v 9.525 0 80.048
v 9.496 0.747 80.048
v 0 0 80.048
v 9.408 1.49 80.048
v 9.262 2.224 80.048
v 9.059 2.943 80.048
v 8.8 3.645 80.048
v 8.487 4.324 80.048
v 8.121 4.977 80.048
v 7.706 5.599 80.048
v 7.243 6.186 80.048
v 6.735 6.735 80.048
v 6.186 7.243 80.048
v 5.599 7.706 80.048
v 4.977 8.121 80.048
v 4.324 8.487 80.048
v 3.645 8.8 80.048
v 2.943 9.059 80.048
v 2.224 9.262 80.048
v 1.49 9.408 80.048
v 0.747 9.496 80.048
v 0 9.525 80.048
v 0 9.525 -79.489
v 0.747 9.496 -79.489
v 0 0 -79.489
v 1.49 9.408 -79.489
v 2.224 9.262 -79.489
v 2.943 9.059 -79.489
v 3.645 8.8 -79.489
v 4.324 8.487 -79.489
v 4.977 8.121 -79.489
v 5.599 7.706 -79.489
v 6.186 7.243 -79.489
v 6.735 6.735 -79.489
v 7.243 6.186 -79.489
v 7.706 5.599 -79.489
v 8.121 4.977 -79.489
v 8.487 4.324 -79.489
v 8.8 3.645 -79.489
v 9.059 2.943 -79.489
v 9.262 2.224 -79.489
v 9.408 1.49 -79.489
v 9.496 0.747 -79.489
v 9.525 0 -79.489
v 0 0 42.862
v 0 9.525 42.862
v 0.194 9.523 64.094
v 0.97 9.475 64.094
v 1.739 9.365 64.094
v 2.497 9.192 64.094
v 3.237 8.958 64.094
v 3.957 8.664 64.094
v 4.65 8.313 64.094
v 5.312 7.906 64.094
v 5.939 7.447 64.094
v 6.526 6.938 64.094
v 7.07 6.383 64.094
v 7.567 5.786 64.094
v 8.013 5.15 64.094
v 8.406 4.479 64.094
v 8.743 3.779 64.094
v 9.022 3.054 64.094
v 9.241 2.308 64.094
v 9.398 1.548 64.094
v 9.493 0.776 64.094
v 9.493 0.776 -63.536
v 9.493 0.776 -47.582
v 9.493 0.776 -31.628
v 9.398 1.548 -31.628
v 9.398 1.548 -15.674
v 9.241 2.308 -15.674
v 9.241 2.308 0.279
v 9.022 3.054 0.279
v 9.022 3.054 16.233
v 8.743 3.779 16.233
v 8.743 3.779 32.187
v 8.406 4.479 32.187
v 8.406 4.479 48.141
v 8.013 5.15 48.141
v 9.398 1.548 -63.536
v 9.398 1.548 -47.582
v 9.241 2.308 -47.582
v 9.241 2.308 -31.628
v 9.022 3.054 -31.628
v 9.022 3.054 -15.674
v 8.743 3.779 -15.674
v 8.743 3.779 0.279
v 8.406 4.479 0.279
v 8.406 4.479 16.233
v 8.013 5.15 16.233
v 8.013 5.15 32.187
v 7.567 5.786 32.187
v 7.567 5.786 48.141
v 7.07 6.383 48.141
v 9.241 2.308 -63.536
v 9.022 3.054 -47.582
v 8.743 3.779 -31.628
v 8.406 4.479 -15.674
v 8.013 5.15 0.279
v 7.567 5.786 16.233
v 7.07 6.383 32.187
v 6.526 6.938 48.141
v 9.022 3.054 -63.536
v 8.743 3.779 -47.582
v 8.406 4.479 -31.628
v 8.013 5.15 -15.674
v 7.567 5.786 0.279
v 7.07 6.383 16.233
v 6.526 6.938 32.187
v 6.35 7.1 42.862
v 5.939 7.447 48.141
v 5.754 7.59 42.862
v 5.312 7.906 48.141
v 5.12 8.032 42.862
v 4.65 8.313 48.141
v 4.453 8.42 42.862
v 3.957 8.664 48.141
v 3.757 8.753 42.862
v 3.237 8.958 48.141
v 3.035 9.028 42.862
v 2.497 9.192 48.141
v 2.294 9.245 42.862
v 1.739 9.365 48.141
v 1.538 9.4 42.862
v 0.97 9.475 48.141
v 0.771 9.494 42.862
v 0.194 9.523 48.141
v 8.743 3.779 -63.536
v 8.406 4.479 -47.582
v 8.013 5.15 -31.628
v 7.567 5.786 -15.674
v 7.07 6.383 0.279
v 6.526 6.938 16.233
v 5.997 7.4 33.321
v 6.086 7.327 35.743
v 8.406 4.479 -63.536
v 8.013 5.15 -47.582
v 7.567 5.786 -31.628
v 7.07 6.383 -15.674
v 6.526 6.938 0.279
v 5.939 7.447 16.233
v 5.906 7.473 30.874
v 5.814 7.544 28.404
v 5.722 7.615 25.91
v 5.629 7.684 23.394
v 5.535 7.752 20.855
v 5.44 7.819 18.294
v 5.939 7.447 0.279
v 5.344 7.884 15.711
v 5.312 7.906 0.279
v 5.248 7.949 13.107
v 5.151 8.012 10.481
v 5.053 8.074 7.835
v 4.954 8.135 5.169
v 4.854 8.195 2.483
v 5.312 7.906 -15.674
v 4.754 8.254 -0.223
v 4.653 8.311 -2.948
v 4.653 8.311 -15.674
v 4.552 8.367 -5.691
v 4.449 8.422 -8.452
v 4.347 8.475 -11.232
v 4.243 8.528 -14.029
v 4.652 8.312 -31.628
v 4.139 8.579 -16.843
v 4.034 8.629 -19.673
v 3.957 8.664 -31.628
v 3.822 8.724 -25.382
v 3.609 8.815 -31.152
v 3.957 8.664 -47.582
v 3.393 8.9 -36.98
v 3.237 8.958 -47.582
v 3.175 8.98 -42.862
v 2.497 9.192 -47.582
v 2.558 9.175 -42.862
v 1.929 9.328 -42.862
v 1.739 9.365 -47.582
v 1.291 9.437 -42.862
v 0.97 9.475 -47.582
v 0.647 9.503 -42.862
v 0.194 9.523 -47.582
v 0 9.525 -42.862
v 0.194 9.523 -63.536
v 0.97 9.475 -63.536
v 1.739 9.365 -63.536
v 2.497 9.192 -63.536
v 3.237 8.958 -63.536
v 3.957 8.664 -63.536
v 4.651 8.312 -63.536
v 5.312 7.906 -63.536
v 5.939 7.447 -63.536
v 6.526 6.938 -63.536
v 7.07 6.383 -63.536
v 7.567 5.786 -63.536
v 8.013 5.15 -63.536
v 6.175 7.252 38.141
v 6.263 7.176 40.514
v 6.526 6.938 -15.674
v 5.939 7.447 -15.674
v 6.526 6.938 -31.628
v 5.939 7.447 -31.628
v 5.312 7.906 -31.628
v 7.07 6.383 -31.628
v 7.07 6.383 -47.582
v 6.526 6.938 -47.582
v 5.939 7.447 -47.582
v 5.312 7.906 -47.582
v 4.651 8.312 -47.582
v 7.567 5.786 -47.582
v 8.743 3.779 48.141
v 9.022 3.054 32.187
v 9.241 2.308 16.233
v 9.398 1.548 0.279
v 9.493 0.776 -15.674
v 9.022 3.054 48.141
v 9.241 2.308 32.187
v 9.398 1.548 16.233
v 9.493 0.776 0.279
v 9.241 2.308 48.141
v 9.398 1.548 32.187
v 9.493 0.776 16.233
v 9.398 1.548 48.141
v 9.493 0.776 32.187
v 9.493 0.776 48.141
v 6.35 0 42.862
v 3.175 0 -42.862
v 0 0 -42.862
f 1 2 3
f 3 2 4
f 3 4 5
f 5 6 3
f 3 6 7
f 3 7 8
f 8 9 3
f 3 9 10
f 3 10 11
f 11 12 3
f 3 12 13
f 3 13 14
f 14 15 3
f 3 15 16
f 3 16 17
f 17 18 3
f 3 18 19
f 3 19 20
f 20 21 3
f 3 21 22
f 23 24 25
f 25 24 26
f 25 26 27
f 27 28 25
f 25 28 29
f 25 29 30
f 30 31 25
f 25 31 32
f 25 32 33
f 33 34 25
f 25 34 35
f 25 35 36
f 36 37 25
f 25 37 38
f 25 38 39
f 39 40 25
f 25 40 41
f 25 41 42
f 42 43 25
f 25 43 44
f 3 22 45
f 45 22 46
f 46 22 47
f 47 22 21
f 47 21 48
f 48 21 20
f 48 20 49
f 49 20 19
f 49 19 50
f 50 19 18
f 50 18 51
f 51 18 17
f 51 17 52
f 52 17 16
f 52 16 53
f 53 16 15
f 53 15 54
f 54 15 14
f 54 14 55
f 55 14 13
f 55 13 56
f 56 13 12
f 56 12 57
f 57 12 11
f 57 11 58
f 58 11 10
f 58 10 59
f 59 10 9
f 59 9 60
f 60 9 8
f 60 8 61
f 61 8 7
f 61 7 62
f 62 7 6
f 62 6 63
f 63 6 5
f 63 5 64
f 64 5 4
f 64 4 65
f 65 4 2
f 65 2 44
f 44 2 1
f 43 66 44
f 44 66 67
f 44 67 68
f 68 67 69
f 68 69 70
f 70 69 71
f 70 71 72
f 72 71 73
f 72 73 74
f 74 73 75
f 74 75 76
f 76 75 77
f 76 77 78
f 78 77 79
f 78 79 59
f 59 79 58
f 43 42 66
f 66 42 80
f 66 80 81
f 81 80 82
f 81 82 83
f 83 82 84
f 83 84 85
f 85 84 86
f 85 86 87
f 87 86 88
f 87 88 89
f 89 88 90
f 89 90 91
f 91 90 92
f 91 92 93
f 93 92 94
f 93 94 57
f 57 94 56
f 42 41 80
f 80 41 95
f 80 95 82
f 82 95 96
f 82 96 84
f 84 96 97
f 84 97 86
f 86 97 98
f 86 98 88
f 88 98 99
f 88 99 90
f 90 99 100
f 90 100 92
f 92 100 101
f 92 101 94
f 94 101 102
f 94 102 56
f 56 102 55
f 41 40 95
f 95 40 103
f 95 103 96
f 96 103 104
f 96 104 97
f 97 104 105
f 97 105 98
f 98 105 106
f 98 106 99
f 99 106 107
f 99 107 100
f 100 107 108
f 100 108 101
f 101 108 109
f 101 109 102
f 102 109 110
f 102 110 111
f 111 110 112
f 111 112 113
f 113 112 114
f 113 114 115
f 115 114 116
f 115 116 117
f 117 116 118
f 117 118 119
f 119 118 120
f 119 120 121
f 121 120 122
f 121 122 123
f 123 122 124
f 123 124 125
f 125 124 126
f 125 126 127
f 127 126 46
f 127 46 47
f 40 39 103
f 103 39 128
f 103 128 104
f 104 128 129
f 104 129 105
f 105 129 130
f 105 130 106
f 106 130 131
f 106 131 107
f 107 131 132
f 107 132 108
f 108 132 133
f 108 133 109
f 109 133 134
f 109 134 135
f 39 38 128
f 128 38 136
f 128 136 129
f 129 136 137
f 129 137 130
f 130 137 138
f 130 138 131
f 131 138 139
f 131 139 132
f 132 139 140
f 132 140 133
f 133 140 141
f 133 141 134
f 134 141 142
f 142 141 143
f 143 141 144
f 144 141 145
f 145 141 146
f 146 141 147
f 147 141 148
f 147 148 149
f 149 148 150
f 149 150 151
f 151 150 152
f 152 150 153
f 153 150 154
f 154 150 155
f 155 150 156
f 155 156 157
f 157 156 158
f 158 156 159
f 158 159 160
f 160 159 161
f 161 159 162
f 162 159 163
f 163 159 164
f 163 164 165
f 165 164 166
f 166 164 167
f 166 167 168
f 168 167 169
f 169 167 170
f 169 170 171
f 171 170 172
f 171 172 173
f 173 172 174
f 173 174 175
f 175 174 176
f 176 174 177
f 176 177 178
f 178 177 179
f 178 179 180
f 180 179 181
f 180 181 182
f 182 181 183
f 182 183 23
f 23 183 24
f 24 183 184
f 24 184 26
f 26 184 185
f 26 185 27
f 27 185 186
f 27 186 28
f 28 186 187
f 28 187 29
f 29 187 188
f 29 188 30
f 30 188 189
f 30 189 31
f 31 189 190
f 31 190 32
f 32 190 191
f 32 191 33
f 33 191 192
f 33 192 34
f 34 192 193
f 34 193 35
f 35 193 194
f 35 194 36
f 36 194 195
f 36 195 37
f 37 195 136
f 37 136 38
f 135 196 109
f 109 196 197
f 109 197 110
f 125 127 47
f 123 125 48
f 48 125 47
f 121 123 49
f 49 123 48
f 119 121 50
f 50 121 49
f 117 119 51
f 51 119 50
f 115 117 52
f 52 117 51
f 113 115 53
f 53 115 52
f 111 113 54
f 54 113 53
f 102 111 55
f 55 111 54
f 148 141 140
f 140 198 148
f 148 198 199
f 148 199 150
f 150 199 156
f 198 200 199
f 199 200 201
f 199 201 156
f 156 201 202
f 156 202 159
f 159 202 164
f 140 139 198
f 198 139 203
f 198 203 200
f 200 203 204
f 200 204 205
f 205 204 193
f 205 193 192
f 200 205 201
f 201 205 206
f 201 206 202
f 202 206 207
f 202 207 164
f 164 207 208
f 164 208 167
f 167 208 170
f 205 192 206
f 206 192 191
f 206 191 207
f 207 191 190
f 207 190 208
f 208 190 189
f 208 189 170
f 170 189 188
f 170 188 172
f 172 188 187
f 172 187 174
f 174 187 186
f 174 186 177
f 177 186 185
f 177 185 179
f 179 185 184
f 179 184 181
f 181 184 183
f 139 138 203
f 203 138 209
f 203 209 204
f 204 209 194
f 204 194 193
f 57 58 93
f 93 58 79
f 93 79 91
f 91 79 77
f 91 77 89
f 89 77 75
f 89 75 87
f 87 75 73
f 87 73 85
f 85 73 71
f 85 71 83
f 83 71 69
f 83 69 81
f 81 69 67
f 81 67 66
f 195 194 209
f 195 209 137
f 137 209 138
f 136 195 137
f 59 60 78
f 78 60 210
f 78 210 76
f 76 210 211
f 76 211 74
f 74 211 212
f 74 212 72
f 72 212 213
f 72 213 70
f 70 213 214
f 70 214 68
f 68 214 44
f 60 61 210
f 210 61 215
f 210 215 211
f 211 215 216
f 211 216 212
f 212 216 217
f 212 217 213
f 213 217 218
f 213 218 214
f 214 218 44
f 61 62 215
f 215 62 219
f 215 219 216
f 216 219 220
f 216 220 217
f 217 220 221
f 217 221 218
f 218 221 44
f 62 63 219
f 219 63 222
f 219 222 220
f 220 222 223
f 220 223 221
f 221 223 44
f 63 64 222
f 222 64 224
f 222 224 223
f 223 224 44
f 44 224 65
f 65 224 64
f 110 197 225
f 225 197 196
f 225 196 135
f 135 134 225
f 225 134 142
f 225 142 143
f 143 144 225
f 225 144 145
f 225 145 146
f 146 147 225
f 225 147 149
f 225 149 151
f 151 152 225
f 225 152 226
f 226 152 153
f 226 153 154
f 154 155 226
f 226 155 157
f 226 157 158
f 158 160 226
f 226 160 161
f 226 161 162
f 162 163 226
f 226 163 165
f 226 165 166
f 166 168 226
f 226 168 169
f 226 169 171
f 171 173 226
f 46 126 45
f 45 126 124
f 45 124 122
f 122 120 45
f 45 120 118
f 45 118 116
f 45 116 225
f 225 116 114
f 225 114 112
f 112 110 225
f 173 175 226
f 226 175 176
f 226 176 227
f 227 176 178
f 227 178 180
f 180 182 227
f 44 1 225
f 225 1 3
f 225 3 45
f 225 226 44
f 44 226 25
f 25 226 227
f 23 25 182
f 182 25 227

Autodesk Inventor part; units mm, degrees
ref_plane "YZ Plane" through (0, 0, 0) normal (1, 0, 0) x (0, 1, 0)
ref_plane "XZ Plane" through (0, 0, 0) normal (0, 1, 0) x (-1, 0, 0)
ref_plane "XY Plane" through (0, 0, 0) normal (0, 0, 1) x (1, 0, 0)
sketch "Sketch1" plane through (0, 0, 0) normal (0, 0, 1) x (1, 0, 0)
  arc A0 (9.525, 0) -> (0, 9.525) centre (0, 0) ccw
  line L0 (0, 9.525) -> (0, 0)
  line L1 (0, 0) -> (9.525, 0)
  dimension "d0" = 19.05
extrude "Extrusion1" add sketch "Sketch1" along normal mid plane 161.925
sketch "Sketch2" plane through (0, 0, 80.9625) normal (0, -1, 0) x (1, 0, 0)
  line L0 (0, -38.1) -> (6.35, -38.1)
  line L1 (3.175, -123.825) -> (0, -123.825)
  line L2 (0, -123.825) -> (0, -38.1)
  line L3 (9.525, -161.925) -> (0, -161.925) projected
  line L4 (0, -161.925) -> (0, 0) projected
  line L5 (3.175, -123.825) -> (6.35, -38.1)
  point P0 (0, -80.9625)
  dimension "d4" = 38.1
  dimension "d8" = 3.175
  dimension "d9" = 6.35
extrude "Extrusion2" cut sketch "Sketch2" against normal through all
sketch "Sketch3" plane through (0, 0, -80.9625) normal (0, -1, 0) x (1, 0, 0)
  line L0 (9.525, 0) -> (0, 0) projected
  line L1 (0, 0) -> (0, 38.1) projected
  line L2 (9.525, 0) -> (0, 0)
  line L3 (0, 0) -> (0, 1.4732)
  line L4 (0, 1.4732) -> (9.525, 1.4732)
  line L5 (9.525, 1.4732) -> (9.525, 0)
  line L6 (0, 161.925) -> (9.525, 161.925) projected
  line L7 (9.525, 161.925) -> (9.525, 0) projected
  line L8 (0, 161.925) -> (9.525, 161.925)
  line L9 (9.525, 161.925) -> (9.525, 161.0106)
  line L10 (9.525, 161.0106) -> (0, 161.0106)
  line L11 (0, 161.0106) -> (0, 161.925)
  point P0 (0, 80.9625)
  dimension "d10" = 1.4732
  dimension "d11" = 0.9144
extrude "Extrusion3" cut sketch "Sketch3" against normal through all
equation "\"d0\" = cornerRoundType"
equation "\"d1\" = lengthOfPart"
equation "\"d4\" = bottomLength"
equation "\"d8\" = notchDepthLeftSide"
equation "\"d9\" = notchDepthRightSide"
equation "\"d10\" = leftSideLengthRemove"
equation "\"d11\" = rightSideLengthRemove"
equation "\"cornerRoundType\" = 19.05"
equation "\"notchCutout\" = 85.725"
equation "\"bottomLength\" = 38.1"
equation "\"lengthOfPart\" = 2 * bottomLength + notchCutout"
equation "\"notchDepth\" = 6.35"
equation "\"notchDepthLeftSide\" = 3.175"
equation "\"notchDepthRightSide\" = 6.35"
equation "\"leftSideLengthRemove\" = 1.4732"
equation "\"rightSideLengthRemove\" = 0.9144"
properties part number "customMoulding"
